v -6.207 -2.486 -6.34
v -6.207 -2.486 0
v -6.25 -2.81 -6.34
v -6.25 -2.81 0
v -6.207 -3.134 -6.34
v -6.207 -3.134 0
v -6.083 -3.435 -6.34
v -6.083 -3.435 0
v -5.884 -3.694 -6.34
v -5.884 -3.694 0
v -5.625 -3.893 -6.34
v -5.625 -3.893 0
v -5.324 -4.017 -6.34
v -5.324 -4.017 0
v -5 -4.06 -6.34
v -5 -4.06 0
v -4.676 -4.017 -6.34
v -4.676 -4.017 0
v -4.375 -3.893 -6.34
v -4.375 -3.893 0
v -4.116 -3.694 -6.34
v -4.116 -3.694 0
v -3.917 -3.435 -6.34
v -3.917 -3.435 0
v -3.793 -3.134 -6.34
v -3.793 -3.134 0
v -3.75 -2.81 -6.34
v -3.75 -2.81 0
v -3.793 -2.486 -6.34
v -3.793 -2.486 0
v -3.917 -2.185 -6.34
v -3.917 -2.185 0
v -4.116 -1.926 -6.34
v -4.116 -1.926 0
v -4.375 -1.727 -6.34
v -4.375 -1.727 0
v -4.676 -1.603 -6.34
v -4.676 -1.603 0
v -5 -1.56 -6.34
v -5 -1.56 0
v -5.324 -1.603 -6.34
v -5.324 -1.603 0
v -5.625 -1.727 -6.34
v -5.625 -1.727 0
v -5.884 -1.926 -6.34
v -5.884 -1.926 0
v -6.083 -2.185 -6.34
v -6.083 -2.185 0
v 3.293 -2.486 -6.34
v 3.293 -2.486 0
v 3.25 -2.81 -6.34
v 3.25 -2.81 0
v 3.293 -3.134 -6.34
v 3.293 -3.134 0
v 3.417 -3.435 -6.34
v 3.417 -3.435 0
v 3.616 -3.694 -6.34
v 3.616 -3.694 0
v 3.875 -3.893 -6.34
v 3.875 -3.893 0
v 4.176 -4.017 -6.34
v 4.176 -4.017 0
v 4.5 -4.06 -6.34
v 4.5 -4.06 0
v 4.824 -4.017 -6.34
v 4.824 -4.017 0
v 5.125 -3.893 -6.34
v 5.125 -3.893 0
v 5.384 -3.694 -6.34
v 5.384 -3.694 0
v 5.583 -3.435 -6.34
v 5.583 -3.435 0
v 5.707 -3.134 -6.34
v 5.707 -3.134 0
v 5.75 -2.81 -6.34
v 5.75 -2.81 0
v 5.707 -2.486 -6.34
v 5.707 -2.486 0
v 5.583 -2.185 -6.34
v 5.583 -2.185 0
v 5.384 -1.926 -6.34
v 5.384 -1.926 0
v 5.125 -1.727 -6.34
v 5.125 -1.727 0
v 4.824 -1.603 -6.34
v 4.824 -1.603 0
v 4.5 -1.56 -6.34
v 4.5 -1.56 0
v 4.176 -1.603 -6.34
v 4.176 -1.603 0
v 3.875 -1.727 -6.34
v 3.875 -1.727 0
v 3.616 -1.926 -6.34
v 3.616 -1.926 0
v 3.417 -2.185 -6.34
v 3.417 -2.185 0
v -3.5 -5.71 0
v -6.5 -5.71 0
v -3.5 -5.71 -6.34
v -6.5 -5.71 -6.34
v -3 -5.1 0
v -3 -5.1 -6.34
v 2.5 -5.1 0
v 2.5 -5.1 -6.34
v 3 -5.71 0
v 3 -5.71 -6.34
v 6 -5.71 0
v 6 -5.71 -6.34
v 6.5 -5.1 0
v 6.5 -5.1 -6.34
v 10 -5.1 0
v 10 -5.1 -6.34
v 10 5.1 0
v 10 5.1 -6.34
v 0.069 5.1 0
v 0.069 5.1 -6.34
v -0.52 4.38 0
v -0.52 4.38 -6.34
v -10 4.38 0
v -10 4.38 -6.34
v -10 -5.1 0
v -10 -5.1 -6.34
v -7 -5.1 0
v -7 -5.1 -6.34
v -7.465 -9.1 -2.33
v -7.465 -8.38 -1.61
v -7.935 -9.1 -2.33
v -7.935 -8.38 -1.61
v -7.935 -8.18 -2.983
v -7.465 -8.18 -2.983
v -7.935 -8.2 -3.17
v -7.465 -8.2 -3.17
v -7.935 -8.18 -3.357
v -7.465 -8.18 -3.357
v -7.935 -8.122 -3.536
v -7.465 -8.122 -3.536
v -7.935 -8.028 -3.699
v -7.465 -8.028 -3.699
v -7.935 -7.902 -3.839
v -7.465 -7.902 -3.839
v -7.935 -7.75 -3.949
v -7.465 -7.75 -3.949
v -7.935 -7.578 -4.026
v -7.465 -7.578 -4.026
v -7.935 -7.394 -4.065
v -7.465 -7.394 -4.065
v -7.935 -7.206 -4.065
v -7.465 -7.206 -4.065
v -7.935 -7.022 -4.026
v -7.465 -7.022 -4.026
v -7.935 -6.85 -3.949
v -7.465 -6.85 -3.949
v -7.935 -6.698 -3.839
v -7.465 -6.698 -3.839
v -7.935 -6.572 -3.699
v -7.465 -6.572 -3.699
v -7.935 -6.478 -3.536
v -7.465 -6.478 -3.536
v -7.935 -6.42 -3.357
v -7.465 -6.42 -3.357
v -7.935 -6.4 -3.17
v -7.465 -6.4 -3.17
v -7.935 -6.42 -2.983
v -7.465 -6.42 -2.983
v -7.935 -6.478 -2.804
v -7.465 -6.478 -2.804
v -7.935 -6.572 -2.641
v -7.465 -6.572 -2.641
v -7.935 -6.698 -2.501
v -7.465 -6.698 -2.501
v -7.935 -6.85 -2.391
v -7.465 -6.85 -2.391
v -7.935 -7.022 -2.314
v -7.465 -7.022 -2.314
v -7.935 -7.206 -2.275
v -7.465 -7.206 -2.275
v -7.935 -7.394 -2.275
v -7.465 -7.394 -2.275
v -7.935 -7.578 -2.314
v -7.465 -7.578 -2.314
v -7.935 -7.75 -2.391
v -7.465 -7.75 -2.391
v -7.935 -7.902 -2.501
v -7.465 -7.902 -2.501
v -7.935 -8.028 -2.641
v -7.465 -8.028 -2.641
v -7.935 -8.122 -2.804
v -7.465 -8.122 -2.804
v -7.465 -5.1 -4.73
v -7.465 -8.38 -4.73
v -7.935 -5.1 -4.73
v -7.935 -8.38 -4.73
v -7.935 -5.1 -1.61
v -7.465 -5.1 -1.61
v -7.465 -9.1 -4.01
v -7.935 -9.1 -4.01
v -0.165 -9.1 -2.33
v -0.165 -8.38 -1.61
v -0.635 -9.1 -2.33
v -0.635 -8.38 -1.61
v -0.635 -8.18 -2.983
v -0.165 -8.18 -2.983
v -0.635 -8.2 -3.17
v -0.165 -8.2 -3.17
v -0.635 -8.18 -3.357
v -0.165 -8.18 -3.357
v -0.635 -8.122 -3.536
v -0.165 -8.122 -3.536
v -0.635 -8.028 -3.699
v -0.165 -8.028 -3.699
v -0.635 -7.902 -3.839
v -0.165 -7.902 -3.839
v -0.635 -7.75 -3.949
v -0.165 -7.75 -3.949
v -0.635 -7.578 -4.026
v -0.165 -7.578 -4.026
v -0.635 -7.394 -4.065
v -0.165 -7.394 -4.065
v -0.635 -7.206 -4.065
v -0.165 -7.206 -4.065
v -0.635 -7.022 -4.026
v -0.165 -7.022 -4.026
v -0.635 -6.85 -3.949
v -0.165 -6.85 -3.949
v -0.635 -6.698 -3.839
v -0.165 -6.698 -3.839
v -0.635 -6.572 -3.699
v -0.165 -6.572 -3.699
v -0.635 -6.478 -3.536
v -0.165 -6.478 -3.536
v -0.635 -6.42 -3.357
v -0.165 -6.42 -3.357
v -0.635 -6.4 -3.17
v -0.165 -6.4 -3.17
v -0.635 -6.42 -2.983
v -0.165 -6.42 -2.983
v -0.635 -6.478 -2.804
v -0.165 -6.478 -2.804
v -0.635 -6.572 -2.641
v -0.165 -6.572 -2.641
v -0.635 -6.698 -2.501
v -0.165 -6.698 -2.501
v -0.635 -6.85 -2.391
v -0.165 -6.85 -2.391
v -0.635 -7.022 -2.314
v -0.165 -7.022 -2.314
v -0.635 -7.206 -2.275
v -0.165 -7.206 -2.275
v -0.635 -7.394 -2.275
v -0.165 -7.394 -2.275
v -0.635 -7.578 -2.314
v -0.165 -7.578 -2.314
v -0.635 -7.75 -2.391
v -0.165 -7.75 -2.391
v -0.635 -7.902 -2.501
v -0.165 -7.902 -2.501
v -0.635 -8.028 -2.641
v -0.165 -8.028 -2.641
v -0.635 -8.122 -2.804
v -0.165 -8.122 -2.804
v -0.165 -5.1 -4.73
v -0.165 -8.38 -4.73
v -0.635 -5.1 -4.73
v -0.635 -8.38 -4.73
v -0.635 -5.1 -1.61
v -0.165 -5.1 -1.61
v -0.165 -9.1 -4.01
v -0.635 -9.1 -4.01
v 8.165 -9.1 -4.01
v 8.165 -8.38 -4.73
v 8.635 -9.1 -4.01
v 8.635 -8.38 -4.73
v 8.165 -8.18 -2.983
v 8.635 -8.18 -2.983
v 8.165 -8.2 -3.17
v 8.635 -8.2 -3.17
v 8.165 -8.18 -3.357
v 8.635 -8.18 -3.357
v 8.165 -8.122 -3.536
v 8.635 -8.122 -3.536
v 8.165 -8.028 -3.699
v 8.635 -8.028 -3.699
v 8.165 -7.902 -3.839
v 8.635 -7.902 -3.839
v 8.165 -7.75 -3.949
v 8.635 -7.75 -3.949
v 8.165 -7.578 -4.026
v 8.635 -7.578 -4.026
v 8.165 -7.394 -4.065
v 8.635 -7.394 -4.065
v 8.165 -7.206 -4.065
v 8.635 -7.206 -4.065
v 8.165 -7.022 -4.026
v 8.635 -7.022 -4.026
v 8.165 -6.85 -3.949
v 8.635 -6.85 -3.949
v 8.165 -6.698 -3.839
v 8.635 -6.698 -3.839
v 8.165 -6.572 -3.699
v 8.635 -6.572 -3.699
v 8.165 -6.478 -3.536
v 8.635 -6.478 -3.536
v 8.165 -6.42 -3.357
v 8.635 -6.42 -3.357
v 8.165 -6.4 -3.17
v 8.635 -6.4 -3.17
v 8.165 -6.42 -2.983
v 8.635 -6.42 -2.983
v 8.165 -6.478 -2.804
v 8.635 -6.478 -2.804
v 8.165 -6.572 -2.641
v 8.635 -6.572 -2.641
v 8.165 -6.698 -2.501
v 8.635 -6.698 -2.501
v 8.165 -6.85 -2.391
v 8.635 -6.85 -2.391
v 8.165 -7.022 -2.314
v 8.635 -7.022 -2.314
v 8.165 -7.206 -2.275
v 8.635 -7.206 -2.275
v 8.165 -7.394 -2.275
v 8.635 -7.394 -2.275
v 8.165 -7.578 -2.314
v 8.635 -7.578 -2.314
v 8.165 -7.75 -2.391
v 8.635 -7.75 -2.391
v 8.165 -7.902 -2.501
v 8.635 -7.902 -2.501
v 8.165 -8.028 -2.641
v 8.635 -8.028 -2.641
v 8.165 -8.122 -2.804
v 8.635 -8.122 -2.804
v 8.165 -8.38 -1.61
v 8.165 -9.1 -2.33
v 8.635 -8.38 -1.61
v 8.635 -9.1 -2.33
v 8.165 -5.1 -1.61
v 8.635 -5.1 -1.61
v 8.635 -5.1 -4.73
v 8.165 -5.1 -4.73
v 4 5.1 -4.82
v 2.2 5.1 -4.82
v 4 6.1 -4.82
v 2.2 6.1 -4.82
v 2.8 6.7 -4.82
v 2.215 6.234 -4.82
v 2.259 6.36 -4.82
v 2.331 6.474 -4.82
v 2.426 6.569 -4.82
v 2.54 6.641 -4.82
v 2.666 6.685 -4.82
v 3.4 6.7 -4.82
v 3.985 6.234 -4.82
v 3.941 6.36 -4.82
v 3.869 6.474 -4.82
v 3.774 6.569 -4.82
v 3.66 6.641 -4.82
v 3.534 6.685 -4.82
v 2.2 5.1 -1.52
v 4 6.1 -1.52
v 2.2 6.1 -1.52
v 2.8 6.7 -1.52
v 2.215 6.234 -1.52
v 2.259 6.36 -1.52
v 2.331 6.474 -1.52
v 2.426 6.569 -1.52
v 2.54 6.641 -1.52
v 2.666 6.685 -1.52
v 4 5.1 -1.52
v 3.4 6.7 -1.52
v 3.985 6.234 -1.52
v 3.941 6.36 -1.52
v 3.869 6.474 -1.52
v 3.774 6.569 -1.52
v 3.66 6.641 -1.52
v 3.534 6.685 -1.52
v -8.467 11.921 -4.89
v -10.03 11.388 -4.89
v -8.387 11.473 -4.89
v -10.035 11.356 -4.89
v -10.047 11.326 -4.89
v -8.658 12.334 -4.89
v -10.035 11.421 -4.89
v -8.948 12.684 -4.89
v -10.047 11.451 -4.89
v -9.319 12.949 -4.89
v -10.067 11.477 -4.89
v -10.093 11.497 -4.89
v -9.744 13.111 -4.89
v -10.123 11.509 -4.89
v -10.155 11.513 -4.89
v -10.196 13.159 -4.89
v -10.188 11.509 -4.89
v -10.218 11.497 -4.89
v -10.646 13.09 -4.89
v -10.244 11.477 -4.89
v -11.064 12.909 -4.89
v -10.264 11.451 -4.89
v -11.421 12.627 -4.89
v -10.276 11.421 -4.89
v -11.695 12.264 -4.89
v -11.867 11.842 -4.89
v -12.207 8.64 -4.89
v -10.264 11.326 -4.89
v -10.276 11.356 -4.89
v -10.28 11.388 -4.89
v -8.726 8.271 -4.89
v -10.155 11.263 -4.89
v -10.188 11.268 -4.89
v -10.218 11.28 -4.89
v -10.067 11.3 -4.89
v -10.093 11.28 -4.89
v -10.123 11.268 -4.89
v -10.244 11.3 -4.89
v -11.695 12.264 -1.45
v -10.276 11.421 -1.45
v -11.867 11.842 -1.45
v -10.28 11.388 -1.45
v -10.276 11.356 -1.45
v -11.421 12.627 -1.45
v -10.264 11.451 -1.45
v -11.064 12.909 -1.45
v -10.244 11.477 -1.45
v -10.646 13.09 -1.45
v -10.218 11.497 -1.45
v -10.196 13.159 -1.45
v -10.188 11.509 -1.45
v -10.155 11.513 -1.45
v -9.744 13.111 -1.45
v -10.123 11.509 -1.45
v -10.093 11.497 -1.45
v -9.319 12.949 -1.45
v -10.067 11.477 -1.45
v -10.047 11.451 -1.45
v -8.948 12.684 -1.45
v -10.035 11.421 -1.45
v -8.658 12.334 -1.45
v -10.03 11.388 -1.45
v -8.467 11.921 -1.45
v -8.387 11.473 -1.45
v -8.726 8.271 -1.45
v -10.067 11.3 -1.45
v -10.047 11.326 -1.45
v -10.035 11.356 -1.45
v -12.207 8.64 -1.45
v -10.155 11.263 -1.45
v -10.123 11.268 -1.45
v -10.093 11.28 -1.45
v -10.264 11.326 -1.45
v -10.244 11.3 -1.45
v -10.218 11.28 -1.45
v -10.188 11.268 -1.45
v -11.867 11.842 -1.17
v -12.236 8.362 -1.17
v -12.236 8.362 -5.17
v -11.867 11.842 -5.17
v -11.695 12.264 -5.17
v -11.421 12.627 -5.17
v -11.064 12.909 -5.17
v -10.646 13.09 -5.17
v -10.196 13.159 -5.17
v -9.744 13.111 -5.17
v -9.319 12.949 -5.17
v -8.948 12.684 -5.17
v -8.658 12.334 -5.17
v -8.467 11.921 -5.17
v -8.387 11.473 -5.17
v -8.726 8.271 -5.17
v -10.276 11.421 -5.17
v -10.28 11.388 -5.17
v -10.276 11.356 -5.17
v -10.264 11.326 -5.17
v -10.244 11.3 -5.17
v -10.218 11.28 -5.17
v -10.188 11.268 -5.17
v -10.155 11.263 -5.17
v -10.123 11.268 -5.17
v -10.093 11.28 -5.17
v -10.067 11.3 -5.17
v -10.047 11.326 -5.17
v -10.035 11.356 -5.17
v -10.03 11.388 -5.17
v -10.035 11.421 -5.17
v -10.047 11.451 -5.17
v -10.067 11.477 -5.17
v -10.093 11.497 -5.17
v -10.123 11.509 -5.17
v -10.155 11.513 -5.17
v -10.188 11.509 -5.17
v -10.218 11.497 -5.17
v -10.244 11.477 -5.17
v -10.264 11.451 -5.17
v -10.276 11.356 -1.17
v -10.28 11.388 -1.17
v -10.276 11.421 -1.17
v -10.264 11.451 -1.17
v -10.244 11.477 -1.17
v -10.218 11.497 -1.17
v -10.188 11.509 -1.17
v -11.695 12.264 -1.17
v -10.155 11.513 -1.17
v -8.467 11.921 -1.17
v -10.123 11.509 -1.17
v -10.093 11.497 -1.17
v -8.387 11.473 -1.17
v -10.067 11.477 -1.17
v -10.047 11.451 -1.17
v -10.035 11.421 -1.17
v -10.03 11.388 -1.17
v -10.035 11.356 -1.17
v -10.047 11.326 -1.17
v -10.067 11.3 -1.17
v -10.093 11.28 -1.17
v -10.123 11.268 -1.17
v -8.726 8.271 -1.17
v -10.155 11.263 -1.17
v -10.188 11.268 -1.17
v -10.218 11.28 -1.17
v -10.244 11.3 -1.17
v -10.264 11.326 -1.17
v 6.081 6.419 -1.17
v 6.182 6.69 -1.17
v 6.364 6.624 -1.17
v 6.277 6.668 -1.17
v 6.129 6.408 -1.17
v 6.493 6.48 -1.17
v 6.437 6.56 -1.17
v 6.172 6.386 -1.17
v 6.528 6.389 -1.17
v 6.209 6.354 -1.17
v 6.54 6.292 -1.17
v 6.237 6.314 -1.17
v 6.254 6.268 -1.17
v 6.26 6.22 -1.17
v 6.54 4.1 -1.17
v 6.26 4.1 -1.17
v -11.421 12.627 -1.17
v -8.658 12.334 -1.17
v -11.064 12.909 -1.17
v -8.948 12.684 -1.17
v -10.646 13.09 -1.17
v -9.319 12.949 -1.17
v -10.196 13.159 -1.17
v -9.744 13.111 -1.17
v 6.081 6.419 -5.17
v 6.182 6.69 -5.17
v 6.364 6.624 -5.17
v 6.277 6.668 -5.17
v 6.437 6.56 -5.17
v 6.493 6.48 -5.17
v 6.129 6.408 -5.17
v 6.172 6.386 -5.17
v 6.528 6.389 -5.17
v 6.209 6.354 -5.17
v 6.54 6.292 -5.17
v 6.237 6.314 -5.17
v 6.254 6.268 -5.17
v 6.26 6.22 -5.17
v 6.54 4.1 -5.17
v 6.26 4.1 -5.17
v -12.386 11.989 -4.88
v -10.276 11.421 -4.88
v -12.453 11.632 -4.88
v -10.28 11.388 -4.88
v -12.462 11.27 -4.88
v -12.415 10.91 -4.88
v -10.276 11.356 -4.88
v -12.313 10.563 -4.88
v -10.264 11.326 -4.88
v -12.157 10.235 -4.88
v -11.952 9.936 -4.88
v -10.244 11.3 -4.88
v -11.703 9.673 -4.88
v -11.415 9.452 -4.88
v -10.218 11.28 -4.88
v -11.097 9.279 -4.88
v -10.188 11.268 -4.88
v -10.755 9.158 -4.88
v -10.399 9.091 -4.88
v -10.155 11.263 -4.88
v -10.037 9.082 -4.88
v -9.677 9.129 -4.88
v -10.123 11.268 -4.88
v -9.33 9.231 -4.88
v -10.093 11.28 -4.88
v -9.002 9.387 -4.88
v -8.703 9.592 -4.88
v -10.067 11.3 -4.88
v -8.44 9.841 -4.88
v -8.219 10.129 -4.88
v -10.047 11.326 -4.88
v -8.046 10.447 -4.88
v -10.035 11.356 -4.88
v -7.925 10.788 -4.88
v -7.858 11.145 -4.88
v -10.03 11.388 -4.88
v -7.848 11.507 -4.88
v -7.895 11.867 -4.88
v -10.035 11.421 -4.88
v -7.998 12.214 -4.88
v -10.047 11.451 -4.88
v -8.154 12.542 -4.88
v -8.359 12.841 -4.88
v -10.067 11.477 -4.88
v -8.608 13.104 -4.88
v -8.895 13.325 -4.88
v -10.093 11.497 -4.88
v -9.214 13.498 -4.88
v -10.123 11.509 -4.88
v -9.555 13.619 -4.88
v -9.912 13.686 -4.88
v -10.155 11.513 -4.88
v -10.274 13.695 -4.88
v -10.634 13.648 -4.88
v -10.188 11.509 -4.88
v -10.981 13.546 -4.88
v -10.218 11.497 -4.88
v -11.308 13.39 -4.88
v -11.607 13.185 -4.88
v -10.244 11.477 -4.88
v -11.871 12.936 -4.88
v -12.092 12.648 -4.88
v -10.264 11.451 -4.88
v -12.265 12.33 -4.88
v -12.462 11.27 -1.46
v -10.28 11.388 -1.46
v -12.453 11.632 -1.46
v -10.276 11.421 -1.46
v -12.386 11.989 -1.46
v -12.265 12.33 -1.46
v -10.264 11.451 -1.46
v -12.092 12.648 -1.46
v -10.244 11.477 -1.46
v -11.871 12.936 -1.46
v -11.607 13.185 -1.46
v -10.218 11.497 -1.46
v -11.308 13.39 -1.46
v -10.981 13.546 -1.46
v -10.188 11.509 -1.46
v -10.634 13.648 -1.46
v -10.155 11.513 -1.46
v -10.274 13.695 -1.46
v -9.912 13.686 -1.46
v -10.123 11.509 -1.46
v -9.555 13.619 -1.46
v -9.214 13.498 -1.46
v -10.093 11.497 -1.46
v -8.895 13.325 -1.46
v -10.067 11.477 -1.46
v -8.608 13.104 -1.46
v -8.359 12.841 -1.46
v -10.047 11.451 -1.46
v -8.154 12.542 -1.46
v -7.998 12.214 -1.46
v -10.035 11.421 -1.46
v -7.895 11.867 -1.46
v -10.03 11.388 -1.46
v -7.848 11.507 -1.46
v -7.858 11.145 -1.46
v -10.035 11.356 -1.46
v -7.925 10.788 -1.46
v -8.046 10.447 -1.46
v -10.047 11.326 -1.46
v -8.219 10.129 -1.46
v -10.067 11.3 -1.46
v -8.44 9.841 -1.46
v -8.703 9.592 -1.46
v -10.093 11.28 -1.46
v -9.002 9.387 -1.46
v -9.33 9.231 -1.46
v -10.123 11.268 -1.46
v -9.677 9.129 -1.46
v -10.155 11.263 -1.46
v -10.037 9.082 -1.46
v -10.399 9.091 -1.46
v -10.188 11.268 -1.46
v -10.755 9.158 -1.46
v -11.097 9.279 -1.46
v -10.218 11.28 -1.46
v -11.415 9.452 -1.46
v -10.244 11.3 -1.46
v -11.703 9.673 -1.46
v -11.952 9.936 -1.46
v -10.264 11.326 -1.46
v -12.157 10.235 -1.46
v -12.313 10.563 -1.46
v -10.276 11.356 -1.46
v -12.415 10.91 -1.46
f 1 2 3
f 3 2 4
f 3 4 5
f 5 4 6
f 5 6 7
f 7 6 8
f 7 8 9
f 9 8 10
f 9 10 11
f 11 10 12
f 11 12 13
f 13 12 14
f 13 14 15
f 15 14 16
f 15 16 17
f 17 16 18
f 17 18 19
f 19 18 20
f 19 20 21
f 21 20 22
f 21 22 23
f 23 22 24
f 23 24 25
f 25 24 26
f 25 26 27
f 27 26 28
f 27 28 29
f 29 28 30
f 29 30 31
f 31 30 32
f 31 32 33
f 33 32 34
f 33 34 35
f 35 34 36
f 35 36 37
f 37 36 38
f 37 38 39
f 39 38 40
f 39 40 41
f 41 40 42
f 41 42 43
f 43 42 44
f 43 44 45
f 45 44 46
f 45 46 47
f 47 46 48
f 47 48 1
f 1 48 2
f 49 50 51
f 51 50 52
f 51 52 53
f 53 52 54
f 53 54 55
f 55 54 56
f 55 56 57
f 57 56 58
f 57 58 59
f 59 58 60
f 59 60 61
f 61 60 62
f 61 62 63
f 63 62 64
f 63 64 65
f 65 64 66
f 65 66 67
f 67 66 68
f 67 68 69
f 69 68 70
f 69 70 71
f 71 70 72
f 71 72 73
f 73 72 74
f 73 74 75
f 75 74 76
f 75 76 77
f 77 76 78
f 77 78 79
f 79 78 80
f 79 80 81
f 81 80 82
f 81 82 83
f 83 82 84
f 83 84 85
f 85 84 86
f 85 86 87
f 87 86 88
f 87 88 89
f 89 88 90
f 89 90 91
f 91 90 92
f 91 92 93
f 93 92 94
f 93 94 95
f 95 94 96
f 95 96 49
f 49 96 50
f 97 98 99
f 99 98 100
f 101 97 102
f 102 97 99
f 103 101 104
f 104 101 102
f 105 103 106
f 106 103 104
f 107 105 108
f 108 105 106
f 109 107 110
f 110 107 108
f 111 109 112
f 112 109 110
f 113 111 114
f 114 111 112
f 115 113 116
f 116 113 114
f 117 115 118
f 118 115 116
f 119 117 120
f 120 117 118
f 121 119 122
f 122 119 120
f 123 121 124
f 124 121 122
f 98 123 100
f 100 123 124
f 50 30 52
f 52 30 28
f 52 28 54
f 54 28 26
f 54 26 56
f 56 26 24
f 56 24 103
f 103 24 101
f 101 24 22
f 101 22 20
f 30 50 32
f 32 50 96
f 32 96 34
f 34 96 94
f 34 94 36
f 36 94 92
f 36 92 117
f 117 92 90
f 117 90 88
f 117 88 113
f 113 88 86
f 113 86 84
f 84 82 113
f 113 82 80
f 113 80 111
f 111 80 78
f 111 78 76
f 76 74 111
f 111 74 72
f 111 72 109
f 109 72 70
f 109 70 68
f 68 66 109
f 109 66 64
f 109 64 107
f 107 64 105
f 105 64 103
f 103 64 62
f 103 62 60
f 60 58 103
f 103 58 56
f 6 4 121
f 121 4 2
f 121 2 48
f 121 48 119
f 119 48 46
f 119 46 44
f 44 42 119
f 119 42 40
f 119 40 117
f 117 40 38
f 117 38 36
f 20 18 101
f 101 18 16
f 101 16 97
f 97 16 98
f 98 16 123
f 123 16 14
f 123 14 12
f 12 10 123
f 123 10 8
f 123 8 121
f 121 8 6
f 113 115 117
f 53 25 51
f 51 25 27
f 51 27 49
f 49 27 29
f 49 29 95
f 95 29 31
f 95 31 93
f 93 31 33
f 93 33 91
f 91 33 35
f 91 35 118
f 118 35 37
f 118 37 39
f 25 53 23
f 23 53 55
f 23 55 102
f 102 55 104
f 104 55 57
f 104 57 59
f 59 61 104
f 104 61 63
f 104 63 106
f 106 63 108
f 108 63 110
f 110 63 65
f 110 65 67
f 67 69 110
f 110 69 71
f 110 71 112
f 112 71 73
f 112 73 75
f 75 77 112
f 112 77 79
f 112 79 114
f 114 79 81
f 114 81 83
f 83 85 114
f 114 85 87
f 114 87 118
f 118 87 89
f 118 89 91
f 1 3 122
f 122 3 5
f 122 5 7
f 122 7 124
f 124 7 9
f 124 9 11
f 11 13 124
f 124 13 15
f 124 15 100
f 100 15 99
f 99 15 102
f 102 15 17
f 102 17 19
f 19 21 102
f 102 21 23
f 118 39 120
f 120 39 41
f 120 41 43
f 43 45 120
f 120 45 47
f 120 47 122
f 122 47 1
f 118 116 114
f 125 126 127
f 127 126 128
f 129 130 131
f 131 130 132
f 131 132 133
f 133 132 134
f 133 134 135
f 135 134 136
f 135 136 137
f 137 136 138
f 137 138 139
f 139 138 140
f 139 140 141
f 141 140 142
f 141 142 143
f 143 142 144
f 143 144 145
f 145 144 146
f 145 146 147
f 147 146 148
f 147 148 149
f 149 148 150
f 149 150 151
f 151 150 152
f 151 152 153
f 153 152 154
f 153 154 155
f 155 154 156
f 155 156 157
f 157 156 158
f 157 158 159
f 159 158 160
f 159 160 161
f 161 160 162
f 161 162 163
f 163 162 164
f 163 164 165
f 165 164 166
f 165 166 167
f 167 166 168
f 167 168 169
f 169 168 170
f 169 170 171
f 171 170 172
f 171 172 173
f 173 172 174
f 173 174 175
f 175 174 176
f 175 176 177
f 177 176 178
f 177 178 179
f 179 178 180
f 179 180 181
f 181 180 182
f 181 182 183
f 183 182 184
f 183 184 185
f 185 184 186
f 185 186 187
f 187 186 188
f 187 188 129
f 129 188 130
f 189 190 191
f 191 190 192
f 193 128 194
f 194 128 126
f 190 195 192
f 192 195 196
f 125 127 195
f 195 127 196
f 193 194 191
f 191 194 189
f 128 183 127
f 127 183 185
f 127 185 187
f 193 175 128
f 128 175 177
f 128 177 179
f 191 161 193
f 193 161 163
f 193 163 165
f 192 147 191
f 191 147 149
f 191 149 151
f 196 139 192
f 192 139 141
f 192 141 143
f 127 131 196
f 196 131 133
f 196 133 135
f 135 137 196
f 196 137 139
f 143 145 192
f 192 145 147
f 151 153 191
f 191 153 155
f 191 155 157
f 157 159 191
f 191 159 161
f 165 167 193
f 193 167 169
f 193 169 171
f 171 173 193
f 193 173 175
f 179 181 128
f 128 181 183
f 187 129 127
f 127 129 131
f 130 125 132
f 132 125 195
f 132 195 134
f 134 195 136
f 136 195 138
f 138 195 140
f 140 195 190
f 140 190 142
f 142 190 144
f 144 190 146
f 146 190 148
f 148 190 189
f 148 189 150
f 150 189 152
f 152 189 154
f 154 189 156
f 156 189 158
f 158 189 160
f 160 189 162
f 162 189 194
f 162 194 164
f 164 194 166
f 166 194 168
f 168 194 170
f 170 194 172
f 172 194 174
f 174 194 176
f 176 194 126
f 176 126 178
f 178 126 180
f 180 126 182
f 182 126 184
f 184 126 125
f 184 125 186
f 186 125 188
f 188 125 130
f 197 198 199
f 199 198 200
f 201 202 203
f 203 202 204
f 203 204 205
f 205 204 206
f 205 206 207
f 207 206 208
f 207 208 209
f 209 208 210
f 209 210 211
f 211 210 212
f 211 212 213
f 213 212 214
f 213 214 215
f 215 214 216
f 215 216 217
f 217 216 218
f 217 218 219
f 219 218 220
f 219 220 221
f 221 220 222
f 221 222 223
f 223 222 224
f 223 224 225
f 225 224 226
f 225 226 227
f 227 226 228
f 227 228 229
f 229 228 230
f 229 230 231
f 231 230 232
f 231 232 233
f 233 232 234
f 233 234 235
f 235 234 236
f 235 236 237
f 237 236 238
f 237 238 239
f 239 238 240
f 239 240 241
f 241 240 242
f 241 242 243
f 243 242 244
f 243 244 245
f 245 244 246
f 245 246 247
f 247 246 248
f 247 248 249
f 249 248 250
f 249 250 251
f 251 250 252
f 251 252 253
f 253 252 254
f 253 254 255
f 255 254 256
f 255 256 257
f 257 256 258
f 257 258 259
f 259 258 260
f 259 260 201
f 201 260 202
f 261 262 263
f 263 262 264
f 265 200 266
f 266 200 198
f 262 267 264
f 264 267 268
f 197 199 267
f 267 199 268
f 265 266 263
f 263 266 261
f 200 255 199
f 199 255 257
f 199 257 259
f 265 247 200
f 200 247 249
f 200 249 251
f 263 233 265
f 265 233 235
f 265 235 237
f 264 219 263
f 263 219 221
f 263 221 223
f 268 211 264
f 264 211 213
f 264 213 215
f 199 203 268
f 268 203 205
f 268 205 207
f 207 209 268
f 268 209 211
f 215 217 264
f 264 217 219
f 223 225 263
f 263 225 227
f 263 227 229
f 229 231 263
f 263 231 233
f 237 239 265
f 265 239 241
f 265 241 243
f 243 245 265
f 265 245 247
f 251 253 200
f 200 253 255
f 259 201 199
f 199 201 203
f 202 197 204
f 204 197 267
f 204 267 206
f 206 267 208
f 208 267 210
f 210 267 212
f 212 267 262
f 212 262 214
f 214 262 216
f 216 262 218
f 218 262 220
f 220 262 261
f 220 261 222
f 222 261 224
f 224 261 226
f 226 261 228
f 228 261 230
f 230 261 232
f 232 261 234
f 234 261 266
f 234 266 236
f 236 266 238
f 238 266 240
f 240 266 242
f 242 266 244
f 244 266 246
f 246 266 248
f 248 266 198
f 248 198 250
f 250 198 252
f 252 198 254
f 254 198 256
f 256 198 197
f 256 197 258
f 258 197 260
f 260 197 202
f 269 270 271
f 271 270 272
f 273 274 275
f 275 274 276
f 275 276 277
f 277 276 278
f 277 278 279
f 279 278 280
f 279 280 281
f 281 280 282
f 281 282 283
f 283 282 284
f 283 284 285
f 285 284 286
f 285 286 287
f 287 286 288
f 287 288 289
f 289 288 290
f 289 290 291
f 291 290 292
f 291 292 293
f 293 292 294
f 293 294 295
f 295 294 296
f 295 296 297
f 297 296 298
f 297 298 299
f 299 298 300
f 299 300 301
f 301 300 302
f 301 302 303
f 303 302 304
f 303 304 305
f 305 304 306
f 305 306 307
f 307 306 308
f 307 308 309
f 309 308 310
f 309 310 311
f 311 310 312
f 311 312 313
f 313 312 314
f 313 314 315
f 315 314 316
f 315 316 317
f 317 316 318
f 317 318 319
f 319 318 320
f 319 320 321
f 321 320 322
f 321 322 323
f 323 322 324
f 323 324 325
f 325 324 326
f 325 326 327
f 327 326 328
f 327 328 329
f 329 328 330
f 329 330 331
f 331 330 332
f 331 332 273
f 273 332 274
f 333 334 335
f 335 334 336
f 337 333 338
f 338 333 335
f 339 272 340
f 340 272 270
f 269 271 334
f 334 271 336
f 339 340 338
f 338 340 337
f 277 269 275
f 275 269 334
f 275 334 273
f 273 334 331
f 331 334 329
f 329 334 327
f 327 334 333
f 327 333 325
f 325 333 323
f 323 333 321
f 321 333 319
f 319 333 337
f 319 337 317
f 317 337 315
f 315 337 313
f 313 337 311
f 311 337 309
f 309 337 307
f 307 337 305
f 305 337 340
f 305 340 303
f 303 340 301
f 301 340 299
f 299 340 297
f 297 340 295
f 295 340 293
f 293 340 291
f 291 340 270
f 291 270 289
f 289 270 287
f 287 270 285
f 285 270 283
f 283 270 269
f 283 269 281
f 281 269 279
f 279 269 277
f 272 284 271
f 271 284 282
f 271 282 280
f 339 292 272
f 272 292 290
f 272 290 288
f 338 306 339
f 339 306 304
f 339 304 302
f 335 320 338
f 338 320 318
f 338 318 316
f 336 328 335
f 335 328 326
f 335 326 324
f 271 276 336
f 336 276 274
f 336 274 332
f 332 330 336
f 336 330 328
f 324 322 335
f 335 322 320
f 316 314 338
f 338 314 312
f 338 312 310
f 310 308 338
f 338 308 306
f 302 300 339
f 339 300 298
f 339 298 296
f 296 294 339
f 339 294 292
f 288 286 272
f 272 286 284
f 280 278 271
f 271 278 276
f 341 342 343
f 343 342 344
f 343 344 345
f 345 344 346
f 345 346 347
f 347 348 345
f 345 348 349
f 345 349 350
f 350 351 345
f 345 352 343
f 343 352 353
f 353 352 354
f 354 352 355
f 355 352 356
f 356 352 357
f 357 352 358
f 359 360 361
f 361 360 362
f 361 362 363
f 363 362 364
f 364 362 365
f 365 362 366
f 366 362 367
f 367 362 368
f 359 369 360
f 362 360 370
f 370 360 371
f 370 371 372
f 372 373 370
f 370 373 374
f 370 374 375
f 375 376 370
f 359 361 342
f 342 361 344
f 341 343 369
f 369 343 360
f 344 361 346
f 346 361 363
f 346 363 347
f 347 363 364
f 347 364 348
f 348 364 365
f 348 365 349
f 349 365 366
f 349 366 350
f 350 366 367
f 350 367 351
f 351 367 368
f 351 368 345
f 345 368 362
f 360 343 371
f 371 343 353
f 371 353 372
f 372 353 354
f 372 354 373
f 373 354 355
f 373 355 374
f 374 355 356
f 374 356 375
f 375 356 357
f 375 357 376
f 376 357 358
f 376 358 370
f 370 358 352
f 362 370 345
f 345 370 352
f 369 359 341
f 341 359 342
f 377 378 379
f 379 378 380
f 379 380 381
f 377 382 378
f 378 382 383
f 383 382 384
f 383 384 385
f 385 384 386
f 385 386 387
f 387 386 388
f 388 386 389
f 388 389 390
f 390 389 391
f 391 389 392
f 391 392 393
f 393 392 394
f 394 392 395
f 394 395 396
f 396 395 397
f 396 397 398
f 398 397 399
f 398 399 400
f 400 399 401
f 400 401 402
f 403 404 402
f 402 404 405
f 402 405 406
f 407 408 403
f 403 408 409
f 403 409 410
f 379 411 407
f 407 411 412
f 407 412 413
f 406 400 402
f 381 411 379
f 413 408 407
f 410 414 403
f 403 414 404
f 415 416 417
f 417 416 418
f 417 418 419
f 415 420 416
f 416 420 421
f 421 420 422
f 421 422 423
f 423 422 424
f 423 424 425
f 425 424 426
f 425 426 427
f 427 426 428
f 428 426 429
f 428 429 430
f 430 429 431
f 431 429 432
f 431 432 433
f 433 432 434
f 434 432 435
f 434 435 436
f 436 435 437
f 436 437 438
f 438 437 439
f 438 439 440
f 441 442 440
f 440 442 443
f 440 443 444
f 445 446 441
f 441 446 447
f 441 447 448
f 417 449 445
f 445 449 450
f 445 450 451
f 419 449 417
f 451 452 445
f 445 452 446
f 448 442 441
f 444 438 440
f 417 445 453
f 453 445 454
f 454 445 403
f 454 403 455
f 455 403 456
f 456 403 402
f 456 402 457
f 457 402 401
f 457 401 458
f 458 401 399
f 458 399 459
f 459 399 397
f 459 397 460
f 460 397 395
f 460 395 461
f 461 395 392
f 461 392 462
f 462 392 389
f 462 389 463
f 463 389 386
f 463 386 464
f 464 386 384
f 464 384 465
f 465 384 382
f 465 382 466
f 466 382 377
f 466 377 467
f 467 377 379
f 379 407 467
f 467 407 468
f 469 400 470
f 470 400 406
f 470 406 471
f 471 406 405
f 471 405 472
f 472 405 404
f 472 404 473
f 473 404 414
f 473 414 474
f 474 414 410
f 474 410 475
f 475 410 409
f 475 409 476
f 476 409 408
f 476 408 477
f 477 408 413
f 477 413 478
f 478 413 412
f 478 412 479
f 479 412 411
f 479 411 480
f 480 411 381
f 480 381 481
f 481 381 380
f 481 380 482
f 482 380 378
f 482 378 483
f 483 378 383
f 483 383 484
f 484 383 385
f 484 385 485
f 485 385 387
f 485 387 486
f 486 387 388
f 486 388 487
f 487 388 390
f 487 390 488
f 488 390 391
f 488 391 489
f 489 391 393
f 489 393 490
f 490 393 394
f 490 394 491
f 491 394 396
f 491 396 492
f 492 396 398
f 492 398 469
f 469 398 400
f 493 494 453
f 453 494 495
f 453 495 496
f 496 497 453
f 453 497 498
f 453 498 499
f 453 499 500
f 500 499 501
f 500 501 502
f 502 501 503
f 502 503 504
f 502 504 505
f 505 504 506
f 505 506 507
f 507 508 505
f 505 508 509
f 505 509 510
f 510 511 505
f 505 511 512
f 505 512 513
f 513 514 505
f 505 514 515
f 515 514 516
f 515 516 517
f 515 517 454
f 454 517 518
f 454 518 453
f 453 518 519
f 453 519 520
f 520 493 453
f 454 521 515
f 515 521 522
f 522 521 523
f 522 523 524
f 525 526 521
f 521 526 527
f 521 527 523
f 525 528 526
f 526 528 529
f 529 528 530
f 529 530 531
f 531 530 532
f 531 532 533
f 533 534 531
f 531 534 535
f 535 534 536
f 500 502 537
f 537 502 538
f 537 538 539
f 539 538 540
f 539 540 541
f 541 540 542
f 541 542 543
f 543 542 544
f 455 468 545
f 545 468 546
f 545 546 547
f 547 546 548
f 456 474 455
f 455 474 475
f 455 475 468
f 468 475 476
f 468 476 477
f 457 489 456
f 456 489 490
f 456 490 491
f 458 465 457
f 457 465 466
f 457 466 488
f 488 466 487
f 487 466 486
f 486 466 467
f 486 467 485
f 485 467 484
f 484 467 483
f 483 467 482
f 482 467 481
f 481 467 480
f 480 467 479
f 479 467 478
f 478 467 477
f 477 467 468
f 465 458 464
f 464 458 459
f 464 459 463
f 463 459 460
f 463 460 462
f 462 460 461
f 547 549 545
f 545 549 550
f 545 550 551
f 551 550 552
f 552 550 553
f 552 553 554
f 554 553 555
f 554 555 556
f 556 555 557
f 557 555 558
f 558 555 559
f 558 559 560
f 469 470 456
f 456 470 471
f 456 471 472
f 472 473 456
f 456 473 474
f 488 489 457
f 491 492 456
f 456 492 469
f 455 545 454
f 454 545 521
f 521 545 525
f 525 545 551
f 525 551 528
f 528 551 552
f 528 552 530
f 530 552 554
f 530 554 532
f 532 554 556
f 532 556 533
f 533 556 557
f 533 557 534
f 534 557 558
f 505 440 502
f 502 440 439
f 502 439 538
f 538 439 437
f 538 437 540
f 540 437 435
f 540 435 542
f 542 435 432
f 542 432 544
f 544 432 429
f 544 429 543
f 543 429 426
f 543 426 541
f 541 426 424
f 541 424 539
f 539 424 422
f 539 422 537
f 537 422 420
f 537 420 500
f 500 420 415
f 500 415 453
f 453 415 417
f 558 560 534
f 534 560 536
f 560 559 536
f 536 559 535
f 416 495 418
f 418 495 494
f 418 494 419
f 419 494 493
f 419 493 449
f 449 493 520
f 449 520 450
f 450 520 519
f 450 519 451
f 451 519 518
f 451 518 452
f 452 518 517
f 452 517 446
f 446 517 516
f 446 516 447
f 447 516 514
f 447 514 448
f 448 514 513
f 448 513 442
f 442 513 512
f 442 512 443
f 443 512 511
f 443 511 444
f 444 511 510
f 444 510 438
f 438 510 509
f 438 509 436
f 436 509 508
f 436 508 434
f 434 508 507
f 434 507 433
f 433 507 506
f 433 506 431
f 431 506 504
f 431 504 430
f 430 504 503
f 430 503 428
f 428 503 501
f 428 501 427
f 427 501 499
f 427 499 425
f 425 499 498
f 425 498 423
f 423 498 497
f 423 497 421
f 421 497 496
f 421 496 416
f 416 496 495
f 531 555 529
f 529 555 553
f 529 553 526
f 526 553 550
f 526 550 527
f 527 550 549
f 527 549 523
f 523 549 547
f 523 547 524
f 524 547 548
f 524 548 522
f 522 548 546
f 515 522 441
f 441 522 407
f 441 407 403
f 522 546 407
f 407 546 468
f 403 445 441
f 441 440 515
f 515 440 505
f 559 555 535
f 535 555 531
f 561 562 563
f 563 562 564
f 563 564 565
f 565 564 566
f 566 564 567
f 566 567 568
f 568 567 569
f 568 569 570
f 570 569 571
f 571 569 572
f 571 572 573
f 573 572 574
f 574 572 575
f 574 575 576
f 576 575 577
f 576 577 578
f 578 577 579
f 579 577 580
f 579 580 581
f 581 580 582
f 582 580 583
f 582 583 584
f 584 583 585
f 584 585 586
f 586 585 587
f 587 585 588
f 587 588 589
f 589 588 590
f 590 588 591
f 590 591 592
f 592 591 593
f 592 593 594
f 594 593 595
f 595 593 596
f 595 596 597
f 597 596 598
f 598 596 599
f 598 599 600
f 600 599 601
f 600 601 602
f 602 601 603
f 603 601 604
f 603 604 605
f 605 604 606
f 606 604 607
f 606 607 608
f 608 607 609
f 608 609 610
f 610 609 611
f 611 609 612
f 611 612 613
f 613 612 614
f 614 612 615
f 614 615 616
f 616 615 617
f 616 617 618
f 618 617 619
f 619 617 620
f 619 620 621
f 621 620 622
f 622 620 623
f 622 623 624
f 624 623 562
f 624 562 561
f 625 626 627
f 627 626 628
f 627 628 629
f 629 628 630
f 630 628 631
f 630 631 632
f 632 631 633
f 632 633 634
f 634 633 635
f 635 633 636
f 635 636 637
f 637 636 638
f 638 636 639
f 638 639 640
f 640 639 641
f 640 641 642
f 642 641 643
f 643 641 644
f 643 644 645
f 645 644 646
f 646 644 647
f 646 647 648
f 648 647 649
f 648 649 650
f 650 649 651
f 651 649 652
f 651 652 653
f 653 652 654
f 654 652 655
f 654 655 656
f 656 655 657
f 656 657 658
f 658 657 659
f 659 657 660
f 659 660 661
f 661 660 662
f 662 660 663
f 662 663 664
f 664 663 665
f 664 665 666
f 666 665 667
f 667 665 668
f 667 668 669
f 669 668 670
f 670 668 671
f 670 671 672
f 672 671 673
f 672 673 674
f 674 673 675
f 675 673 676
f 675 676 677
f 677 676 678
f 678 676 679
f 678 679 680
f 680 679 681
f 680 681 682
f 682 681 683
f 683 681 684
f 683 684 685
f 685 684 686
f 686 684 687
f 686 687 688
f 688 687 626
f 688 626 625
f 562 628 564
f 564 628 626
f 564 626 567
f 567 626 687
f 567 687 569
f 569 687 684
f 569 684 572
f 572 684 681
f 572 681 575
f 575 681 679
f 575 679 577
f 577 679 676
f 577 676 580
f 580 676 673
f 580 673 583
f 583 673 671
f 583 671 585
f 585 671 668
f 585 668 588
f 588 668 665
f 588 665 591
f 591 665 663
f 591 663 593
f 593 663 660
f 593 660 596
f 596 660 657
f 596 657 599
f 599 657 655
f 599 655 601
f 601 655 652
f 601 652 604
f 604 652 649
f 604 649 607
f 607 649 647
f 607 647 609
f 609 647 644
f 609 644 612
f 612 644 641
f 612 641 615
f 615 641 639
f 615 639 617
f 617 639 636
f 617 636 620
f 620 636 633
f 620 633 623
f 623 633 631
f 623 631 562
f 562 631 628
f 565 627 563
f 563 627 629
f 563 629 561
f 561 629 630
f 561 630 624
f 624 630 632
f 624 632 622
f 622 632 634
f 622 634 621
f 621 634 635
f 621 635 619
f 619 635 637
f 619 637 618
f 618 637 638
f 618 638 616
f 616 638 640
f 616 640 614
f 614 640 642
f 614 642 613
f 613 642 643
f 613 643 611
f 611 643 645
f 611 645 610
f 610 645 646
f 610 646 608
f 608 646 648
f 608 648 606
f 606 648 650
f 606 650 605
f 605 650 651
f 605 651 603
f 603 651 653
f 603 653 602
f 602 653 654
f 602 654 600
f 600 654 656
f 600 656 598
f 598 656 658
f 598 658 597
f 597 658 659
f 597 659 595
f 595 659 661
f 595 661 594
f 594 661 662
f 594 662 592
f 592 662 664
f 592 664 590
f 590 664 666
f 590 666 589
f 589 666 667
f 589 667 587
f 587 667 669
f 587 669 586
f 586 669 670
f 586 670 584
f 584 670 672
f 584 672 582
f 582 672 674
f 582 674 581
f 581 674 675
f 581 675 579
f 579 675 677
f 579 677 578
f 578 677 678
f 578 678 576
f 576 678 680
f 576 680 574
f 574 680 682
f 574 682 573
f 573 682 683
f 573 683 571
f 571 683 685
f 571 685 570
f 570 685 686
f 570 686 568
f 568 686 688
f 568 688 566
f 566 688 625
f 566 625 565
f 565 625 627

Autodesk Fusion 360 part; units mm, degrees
sketch "Body" plane through (0, 0, 0) normal (0, 0, 1) x (1, 0, 0)
  line L0 (10, -5.1) -> (-10, -5.1)
  line L1 (-10, -5.1) -> (-10, 5.1)
  line L2 (-10, 5.1) -> (10, 5.1)
  line L3 (10, 5.1) -> (10, -5.1)
  line L4 (10, -5.1) -> (-10, 5.1) construction
  line L5 (-10, -5.1) -> (10, 5.1) construction
  line L6 (8.4, 5.1) -> (8.4, -5.1) construction
  line L7 (-0.4, 5.1) -> (-0.4, -5.1) construction
  line L8 (-7.7, 5.1) -> (-7.7, -5.1) construction
  line L9 (-7.7, -5.1) -> (-7.7, -9.1) construction
  line L10 (-0.4, -5.1) -> (-0.4, -9.1) construction
  line L11 (8.4, -5.1) -> (8.4, -9.1) construction
  line L12 (-10, -5.1) -> (10, -5.1) construction
  line L13 (10, -5.1) -> (10, -5.71) construction
  line L14 (10, -5.71) -> (-10, -5.71) construction
  line L15 (-10, -5.71) -> (-10, -5.1) construction
  line L16 (10, -2.81) -> (-10, -2.81) construction
  line L17 (-10, -2.81) -> (4.5, -2.81) construction
  circle A0 centre (4.5, -2.81) radius 1.25
  line L18 (4.5, -2.81) -> (-5, -2.81) construction
  circle A1 centre (-5, -2.81) radius 1.25
  line L19 (-5, -2.81) -> (-5, -5.71) construction
  line L20 (4.5, -2.81) -> (4.5, -5.71) construction
  line L21 (3, -5.71) -> (6, -5.71)
  line L22 (4.5, -5.1) -> (4.5, -5.71) construction
  line L23 (-5, -5.1) -> (-5, -5.71) construction
  line L24 (2.5, -5.1) -> (6.5, -5.1)
  line L25 (2.5, -5.1) -> (3, -5.71)
  line L26 (6, -5.71) -> (6.5, -5.1)
  line L27 (-6.5, -5.71) -> (-3.5, -5.71)
  line L28 (-7, -5.1) -> (-3, -5.1)
  line L29 (-7, -5.1) -> (-6.5, -5.71)
  line L30 (-3.5, -5.71) -> (-3, -5.1)
  line L31 (-7.465, -5.1) -> (-7.935, -5.1)
  line L32 (-7.935, -5.1) -> (-7.935, -9.1)
  line L33 (-7.935, -9.1) -> (-7.465, -9.1)
  line L34 (-7.465, -9.1) -> (-7.465, -5.1)
  line L35 (-7.465, -5.1) -> (-7.935, -9.1) construction
  line L36 (-7.935, -5.1) -> (-7.465, -9.1) construction
  line L37 (-0.165, -5.1) -> (-0.635, -5.1)
  line L38 (-0.635, -5.1) -> (-0.635, -9.1)
  line L39 (-0.635, -9.1) -> (-0.165, -9.1)
  line L40 (-0.165, -9.1) -> (-0.165, -5.1)
  line L41 (-0.165, -5.1) -> (-0.635, -9.1) construction
  line L42 (-0.635, -5.1) -> (-0.165, -9.1) construction
  line L43 (8.635, -5.1) -> (8.165, -5.1)
  line L44 (8.165, -5.1) -> (8.165, -9.1)
  line L45 (8.165, -9.1) -> (8.635, -9.1)
  line L46 (8.635, -9.1) -> (8.635, -5.1)
  line L47 (8.635, -5.1) -> (8.165, -9.1) construction
  line L48 (8.165, -5.1) -> (8.635, -9.1) construction
  line L49 (-10, -5.1) -> (-10, 4.38)
  line L50 (-10, 4.38) -> (-0.52, 4.38)
  line L51 (-0.52, 4.38) -> (0.0693, 5.1)
  line L52 (-0.52, 4.38) -> (0.4104, 4.38) construction
  point P0 (4.5, -5.1)
  point P1 (-7.7, -7.1)
  point P2 (-0.4, -7.1)
  point P3 (8.4, -7.1)
  dimension "d1" = 20
  dimension "d2" = 10.2
  dimension "d3" = 1.6
  dimension "d4" = 10.4
  dimension "d5" = 17.7
  dimension "d6" = 4
  dimension "d7" = 4
  dimension "d8" = 4
  dimension "d12" = 0.61
  dimension "d13" = 2.9
  dimension "d14" = 14.5
  dimension "d15" = 2.5
  dimension "d16" = 9.5
  dimension "d17" = 2.5
  dimension "d21" = 3
  dimension "d22" = 4
  dimension "d23" = 3
  dimension "d24" = 4
  dimension "d25" = 0.47
  dimension "d26" = 0.47
  dimension "d27" = 4
  dimension "d28" = 0.47
  dimension "d51" = 9.48
  dimension "d52" = 9.48
  dimension "d53" = 50.7
sketch "Stem" plane through (0, 0, 0) normal (0, 0, 1) x (1, 0, 0)
  line L0 (2.8, 6.7) -> (3.4, 6.7)
  line L1 (4, 6.1) -> (4, 5.1)
  line L2 (4, 5.1) -> (2.2, 5.1)
  line L3 (2.2, 5.1) -> (2.2, 6.1)
  line L4 (10, 5.1) -> (10, -5.1) construction
  line L5 (10, 5.1) -> (3.1, 5.1) construction
  arc A0 (2.8, 6.7) -> (2.2, 6.1) centre (2.8, 6.1) ccw
  arc A1 (4, 6.1) -> (3.4, 6.7) centre (3.4, 6.1) ccw
  line L6 (10, 5.1) -> (6.4, 5.1) construction
  line L7 (6.4, 5.1) -> (6.4, 4.1) construction
  circle A2 centre (6.4, 4.1) radius 0.125
  line L8 (6.54, 6.2921) -> (6.54, 4.1)
  line L9 (6.54, 4.1) -> (6.26, 4.1)
  line L10 (6.26, 4.1) -> (6.26, 6.2201)
  line L11 (-12.2362, 8.3619) -> (6.0811, 6.419)
  line L12 (-12.2362, 8.3619) -> (-12.2067, 8.6404)
  line L13 (-12.2067, 8.6404) -> (6.1822, 6.6898)
  line L14 (-10, 5.1) -> (10, 5.1)
  line L15 (-12.2362, 8.3619) -> (-11.8671, 11.8424)
  line L16 (-12.2362, 8.3619) -> (-8.7558, 7.9928)
  line L17 (-8.7558, 7.9928) -> (-8.3866, 11.4732)
  line L18 (-10.496, 8.1773) -> (-9.9686, 13.1494) construction
  arc A3 (-8.3866, 11.4732) -> (-11.8671, 11.8424) centre (-10.1554, 11.3885) ccw
  circle A4 centre (-10.1554, 11.3885) radius 0.125
  circle A5 centre (-10.1554, 11.3885) radius 2.31
  arc A6 (6.26, 6.2201) -> (6.0811, 6.419) centre (6.06, 6.2201) ccw
  arc A7 (6.54, 6.2921) -> (6.1822, 6.6898) centre (6.14, 6.2921) ccw
  point P0 (2.2, 6.7)
  point P1 (4, 6.7)
  point P2 (6.26, 6.4)
  point P3 (6.26, 6.4)
  dimension "d29" = 1.8
  dimension "d30" = 1.6
  dimension "d31" = 6.9
  dimension "d32" = 0.6
  dimension "d33" = 3.6
  dimension "d34" = 1
  dimension "d35" = 0.25
  dimension "d39" = 2.3
  dimension "d40" = 18.6
  dimension "d41" = 0.28
  dimension "d42" = 0.28
  dimension "d43" = 3.5
  dimension "d44" = 3.5
  dimension "d45" = 3.5
  dimension "d46" = 5
  dimension "d47" = 0.25
  dimension "d48" = 4.62
  dimension "d49" = 0.2
  dimension "d50" = 0.4
extrude "Extrude1" add sketch "Body" against normal blind 6.34 contours L0 L1 L2 L3 L24 L28 L31 L37 L43 L49 L50 L51 | L0 L21 L24 L25 L26 | L0 L27 L28 L29 L30 makes body 1
extrude "Extrude2" add sketch "Body" against normal blind 6.34 separate body contours L0 L43 L44 L45 L46 | L0 L37 L38 L39 L40 | L0 L31 L32 L33 L34 makes body 2 at (-7.465, -7.7667, -2.1133) makes body 3 at (-0.165, -7.7667, -2.1133) makes body 4 at (8.635, -7.7667, -2.1133)
extrude "Extrude3" add sketch "Stem" against normal blind 6.34 separate body contours L0 L1 L2 L3 A0 A1 L14 makes body 5
extrude "Extrude4" add sketch "Stem" against normal blind 6.34 separate body contours L8 L10 L11 L13 L14 L17 A6 A7 | L11 L12 L13 L15 L16 L17 | L13 L15 L17 A5 | A2 L8 L9 L10 L14 | L15 L17 A3 A5 | A2 L9 picked at (-11.3966, 11.0834) picked at (6.4305, 4.1408) makes body 6
extrude "Extrude5" add sketch "Stem" against normal blind 6.34 separate body contours L15 L17 A3 A5 | L15 L17 A3 A5 makes body 7
sketch "Profile - Contact / Button" plane through (0, 0, 0) normal (1, 0, 0) x (0, 1, 0)
  line L0 (-5.1, 0) -> (-9.1, 0) construction
  line L1 (-9.1, 0) -> (-9.1, -6.34) construction
  line L2 (-9.1, -6.34) -> (-5.1, -6.34) construction
  line L3 (-5.1, -6.34) -> (-5.1, 0) construction
  line L4 (-9.1, -3.17) -> (-5.1, -3.17) construction
  line L5 (-5.1, -4.73) -> (-9.1, -4.73) construction
  line L6 (-9.1, -4.73) -> (-9.1, -1.61) construction
  line L7 (-9.1, -1.61) -> (-5.1, -1.61) construction
  line L8 (-5.1, -1.61) -> (-5.1, -4.73) construction
  line L9 (-5.1, -4.73) -> (-9.1, -1.61) construction
  line L10 (-9.1, -4.73) -> (-5.1, -1.61) construction
  line L11 (-9.1, -3.17) -> (-7.3, -3.17) construction
  circle A0 centre (-7.3, -3.17) radius 0.9
  line L12 (-8.38, -4.73) -> (-8.38, -1.61) construction
  line L13 (-9.1, -2.33) -> (-5.1, -2.33) construction
  line L14 (-5.1, -4.01) -> (-9.1, -4.01) construction
  line L15 (-9.1, -4.01) -> (-8.38, -4.73)
  line L16 (-9.1, -2.33) -> (-8.38, -1.61)
  line L17 (-8.38, -1.61) -> (-5.1, -1.61)
  line L18 (-5.1, -1.61) -> (-5.1, -4.73)
  line L19 (-5.1, -4.73) -> (-8.38, -4.73)
  line L20 (-9.1, -4.01) -> (-9.1, -2.33)
  line L21 (6.7, 0) -> (6.7, -6.34) construction
  line L22 (6.7, 0) -> (6.1, 0) construction
  line L23 (6.1, -6.34) -> (6.7, -6.34) construction
  line L24 (5.1, 0) -> (6.1, 0) construction
  line L25 (5.1, -6.34) -> (6.1, -6.34) construction
  line L26 (5.1, 0) -> (5.1, -6.34) construction
  line L27 (5.1, -3.17) -> (6.7, -3.17) construction
  line L28 (6.7, -4.82) -> (5.1, -4.82)
  line L29 (5.1, -4.82) -> (5.1, -1.52)
  line L30 (5.1, -1.52) -> (6.7, -1.52)
  line L31 (6.7, -1.52) -> (6.7, -4.82)
  line L32 (6.7, -4.82) -> (5.1, -1.52) construction
  line L33 (5.1, -4.82) -> (6.7, -1.52) construction
  point P0 (-7.1, -3.17)
  point P1 (5.9, -3.17)
  dimension "d64" = 3.12
  dimension "d65" = 1.8
  dimension "d66" = 1.8
  dimension "d67" = 0.72
  dimension "d68" = 0.72
  dimension "d69" = 0.72
  dimension "d74" = 3.3
extrude "Extrude6" cut sketch "Profile - Contact / Button" against normal blind 10 contours L15 L16 L17 L18 L19 L20 keep common part bodies 2 3
extrude "Extrude7" cut sketch "Profile - Contact / Button" along normal blind 11 contours L15 L16 L17 L18 L19 L20 keep common part bodies 4
extrude "Extrude9" cut sketch "Profile - Contact / Button" along normal blind 6.9 contours L28 L29 L30 L31 keep common part bodies 5
ref_plane "WorkPlane1" through (-0.4282, 15.4359, -3.17) normal (0.1055, 0.9944, 0) x (0.9944, -0.1055, 0)
sketch "Profile - Stem" plane through (-0.4282, 15.4359, -3.17) normal (0.1055, 0.9944, 0) x (0.9944, -0.1055, 0)
  line L0 (-10.996, -3.17) -> (-10.996, 3.17) construction
  line L1 (-10.996, -3.17) -> (7.4241, -3.17) construction
  line L2 (7.4241, 3.17) -> (-10.996, 3.17) construction
  line L3 (7.6229, -3.17) -> (7.4241, -3.17) construction
  line L4 (7.6229, 3.17) -> (7.4241, 3.17) construction
  line L5 (7.8466, -3.17) -> (7.6229, -3.17) construction
  line L6 (7.8466, 3.17) -> (7.6229, 3.17) construction
  line L7 (8.125, -3.17) -> (7.8466, -3.17) construction
  line L8 (8.125, 3.17) -> (7.8466, 3.17) construction
  line L9 (8.125, -3.17) -> (8.125, 3.17) construction
  line L10 (8.125, 0) -> (-10.996, 0) construction
  line L11 (-10.996, 2) -> (8.125, 2)
  line L12 (8.125, 2) -> (8.125, -2)
  line L13 (8.125, -2) -> (-10.996, -2)
  line L14 (-10.996, -2) -> (-10.996, 2)
  line L15 (-10.996, 2) -> (8.125, -2) construction
  line L16 (8.125, 2) -> (-10.996, -2) construction
  line L17 (8.125, -1.72) -> (-10.996, -1.72)
  line L18 (-10.996, 1.72) -> (8.125, 1.72)
  point P0 (-1.4355, 0)
  dimension "d80" = 4
  dimension "d83" = 0.28
  dimension "d84" = 0.28
extrude "Extrude10" cut sketch "Profile - Stem" against normal blind 25 keep common part bodies 6
extrude "Extrude12" cut sketch "Profile - Stem" against normal blind 8 contours L12 L14 L17 L18 bodies 6
sketch "Profile - Wheel" plane through (-0.4282, 15.4359, -3.17) normal (0.1055, 0.9944, 0) x (0.9944, -0.1055, 0)
  line L0 (-11.5431, 3.17) -> (-11.556, 3.17)
  line L1 (-6.936, 3.17) -> (-11.5431, 3.17)
  line L2 (-11.5431, -3.17) -> (-6.936, -3.17)
  line L3 (-11.556, -3.17) -> (-11.5431, -3.17)
  line L4 (-6.936, -3.17) -> (-6.936, 3.17)
  line L5 (-11.556, -3.17) -> (-11.556, 3.17)
  line L6 (-10.996, -2) -> (-10.996, 2) construction
  line L7 (-10.996, -2) -> (7.4241, -2) construction
  line L8 (7.4241, -2) -> (7.6229, -2) construction
  line L9 (7.6229, -2) -> (7.8466, -2) construction
  line L10 (7.8466, -2) -> (8.125, -2) construction
  line L11 (7.4241, 2) -> (-10.996, 2) construction
  line L12 (8.125, 2) -> (7.8466, 2) construction
  line L13 (7.8466, 2) -> (7.6229, 2) construction
  line L14 (7.6229, 2) -> (7.4241, 2) construction
  line L15 (8.125, -2) -> (8.125, 2) construction
  line L16 (8.125, -2) -> (-11.556, -2)
  line L17 (8.125, 2) -> (-11.556, 2)
  line L18 (8.125, -1.71) -> (-11.556, -1.71)
  line L19 (8.125, 1.71) -> (-11.556, 1.71)
  dimension "d89" = 0.29
  dimension "d90" = -0.29
extrude "Extrude13" cut sketch "Profile - Wheel" against normal blind 8 contours L4 L5 L18 L19 keep common part bodies 7
extrude "Extrude11" [suppressed]
extrude "Extrude8" [suppressed]
equation "d4 = 1.6 mm + 8.8 mm"
equation "d5 = 1.6 mm + 8.8 mm + 7.3 mm"
